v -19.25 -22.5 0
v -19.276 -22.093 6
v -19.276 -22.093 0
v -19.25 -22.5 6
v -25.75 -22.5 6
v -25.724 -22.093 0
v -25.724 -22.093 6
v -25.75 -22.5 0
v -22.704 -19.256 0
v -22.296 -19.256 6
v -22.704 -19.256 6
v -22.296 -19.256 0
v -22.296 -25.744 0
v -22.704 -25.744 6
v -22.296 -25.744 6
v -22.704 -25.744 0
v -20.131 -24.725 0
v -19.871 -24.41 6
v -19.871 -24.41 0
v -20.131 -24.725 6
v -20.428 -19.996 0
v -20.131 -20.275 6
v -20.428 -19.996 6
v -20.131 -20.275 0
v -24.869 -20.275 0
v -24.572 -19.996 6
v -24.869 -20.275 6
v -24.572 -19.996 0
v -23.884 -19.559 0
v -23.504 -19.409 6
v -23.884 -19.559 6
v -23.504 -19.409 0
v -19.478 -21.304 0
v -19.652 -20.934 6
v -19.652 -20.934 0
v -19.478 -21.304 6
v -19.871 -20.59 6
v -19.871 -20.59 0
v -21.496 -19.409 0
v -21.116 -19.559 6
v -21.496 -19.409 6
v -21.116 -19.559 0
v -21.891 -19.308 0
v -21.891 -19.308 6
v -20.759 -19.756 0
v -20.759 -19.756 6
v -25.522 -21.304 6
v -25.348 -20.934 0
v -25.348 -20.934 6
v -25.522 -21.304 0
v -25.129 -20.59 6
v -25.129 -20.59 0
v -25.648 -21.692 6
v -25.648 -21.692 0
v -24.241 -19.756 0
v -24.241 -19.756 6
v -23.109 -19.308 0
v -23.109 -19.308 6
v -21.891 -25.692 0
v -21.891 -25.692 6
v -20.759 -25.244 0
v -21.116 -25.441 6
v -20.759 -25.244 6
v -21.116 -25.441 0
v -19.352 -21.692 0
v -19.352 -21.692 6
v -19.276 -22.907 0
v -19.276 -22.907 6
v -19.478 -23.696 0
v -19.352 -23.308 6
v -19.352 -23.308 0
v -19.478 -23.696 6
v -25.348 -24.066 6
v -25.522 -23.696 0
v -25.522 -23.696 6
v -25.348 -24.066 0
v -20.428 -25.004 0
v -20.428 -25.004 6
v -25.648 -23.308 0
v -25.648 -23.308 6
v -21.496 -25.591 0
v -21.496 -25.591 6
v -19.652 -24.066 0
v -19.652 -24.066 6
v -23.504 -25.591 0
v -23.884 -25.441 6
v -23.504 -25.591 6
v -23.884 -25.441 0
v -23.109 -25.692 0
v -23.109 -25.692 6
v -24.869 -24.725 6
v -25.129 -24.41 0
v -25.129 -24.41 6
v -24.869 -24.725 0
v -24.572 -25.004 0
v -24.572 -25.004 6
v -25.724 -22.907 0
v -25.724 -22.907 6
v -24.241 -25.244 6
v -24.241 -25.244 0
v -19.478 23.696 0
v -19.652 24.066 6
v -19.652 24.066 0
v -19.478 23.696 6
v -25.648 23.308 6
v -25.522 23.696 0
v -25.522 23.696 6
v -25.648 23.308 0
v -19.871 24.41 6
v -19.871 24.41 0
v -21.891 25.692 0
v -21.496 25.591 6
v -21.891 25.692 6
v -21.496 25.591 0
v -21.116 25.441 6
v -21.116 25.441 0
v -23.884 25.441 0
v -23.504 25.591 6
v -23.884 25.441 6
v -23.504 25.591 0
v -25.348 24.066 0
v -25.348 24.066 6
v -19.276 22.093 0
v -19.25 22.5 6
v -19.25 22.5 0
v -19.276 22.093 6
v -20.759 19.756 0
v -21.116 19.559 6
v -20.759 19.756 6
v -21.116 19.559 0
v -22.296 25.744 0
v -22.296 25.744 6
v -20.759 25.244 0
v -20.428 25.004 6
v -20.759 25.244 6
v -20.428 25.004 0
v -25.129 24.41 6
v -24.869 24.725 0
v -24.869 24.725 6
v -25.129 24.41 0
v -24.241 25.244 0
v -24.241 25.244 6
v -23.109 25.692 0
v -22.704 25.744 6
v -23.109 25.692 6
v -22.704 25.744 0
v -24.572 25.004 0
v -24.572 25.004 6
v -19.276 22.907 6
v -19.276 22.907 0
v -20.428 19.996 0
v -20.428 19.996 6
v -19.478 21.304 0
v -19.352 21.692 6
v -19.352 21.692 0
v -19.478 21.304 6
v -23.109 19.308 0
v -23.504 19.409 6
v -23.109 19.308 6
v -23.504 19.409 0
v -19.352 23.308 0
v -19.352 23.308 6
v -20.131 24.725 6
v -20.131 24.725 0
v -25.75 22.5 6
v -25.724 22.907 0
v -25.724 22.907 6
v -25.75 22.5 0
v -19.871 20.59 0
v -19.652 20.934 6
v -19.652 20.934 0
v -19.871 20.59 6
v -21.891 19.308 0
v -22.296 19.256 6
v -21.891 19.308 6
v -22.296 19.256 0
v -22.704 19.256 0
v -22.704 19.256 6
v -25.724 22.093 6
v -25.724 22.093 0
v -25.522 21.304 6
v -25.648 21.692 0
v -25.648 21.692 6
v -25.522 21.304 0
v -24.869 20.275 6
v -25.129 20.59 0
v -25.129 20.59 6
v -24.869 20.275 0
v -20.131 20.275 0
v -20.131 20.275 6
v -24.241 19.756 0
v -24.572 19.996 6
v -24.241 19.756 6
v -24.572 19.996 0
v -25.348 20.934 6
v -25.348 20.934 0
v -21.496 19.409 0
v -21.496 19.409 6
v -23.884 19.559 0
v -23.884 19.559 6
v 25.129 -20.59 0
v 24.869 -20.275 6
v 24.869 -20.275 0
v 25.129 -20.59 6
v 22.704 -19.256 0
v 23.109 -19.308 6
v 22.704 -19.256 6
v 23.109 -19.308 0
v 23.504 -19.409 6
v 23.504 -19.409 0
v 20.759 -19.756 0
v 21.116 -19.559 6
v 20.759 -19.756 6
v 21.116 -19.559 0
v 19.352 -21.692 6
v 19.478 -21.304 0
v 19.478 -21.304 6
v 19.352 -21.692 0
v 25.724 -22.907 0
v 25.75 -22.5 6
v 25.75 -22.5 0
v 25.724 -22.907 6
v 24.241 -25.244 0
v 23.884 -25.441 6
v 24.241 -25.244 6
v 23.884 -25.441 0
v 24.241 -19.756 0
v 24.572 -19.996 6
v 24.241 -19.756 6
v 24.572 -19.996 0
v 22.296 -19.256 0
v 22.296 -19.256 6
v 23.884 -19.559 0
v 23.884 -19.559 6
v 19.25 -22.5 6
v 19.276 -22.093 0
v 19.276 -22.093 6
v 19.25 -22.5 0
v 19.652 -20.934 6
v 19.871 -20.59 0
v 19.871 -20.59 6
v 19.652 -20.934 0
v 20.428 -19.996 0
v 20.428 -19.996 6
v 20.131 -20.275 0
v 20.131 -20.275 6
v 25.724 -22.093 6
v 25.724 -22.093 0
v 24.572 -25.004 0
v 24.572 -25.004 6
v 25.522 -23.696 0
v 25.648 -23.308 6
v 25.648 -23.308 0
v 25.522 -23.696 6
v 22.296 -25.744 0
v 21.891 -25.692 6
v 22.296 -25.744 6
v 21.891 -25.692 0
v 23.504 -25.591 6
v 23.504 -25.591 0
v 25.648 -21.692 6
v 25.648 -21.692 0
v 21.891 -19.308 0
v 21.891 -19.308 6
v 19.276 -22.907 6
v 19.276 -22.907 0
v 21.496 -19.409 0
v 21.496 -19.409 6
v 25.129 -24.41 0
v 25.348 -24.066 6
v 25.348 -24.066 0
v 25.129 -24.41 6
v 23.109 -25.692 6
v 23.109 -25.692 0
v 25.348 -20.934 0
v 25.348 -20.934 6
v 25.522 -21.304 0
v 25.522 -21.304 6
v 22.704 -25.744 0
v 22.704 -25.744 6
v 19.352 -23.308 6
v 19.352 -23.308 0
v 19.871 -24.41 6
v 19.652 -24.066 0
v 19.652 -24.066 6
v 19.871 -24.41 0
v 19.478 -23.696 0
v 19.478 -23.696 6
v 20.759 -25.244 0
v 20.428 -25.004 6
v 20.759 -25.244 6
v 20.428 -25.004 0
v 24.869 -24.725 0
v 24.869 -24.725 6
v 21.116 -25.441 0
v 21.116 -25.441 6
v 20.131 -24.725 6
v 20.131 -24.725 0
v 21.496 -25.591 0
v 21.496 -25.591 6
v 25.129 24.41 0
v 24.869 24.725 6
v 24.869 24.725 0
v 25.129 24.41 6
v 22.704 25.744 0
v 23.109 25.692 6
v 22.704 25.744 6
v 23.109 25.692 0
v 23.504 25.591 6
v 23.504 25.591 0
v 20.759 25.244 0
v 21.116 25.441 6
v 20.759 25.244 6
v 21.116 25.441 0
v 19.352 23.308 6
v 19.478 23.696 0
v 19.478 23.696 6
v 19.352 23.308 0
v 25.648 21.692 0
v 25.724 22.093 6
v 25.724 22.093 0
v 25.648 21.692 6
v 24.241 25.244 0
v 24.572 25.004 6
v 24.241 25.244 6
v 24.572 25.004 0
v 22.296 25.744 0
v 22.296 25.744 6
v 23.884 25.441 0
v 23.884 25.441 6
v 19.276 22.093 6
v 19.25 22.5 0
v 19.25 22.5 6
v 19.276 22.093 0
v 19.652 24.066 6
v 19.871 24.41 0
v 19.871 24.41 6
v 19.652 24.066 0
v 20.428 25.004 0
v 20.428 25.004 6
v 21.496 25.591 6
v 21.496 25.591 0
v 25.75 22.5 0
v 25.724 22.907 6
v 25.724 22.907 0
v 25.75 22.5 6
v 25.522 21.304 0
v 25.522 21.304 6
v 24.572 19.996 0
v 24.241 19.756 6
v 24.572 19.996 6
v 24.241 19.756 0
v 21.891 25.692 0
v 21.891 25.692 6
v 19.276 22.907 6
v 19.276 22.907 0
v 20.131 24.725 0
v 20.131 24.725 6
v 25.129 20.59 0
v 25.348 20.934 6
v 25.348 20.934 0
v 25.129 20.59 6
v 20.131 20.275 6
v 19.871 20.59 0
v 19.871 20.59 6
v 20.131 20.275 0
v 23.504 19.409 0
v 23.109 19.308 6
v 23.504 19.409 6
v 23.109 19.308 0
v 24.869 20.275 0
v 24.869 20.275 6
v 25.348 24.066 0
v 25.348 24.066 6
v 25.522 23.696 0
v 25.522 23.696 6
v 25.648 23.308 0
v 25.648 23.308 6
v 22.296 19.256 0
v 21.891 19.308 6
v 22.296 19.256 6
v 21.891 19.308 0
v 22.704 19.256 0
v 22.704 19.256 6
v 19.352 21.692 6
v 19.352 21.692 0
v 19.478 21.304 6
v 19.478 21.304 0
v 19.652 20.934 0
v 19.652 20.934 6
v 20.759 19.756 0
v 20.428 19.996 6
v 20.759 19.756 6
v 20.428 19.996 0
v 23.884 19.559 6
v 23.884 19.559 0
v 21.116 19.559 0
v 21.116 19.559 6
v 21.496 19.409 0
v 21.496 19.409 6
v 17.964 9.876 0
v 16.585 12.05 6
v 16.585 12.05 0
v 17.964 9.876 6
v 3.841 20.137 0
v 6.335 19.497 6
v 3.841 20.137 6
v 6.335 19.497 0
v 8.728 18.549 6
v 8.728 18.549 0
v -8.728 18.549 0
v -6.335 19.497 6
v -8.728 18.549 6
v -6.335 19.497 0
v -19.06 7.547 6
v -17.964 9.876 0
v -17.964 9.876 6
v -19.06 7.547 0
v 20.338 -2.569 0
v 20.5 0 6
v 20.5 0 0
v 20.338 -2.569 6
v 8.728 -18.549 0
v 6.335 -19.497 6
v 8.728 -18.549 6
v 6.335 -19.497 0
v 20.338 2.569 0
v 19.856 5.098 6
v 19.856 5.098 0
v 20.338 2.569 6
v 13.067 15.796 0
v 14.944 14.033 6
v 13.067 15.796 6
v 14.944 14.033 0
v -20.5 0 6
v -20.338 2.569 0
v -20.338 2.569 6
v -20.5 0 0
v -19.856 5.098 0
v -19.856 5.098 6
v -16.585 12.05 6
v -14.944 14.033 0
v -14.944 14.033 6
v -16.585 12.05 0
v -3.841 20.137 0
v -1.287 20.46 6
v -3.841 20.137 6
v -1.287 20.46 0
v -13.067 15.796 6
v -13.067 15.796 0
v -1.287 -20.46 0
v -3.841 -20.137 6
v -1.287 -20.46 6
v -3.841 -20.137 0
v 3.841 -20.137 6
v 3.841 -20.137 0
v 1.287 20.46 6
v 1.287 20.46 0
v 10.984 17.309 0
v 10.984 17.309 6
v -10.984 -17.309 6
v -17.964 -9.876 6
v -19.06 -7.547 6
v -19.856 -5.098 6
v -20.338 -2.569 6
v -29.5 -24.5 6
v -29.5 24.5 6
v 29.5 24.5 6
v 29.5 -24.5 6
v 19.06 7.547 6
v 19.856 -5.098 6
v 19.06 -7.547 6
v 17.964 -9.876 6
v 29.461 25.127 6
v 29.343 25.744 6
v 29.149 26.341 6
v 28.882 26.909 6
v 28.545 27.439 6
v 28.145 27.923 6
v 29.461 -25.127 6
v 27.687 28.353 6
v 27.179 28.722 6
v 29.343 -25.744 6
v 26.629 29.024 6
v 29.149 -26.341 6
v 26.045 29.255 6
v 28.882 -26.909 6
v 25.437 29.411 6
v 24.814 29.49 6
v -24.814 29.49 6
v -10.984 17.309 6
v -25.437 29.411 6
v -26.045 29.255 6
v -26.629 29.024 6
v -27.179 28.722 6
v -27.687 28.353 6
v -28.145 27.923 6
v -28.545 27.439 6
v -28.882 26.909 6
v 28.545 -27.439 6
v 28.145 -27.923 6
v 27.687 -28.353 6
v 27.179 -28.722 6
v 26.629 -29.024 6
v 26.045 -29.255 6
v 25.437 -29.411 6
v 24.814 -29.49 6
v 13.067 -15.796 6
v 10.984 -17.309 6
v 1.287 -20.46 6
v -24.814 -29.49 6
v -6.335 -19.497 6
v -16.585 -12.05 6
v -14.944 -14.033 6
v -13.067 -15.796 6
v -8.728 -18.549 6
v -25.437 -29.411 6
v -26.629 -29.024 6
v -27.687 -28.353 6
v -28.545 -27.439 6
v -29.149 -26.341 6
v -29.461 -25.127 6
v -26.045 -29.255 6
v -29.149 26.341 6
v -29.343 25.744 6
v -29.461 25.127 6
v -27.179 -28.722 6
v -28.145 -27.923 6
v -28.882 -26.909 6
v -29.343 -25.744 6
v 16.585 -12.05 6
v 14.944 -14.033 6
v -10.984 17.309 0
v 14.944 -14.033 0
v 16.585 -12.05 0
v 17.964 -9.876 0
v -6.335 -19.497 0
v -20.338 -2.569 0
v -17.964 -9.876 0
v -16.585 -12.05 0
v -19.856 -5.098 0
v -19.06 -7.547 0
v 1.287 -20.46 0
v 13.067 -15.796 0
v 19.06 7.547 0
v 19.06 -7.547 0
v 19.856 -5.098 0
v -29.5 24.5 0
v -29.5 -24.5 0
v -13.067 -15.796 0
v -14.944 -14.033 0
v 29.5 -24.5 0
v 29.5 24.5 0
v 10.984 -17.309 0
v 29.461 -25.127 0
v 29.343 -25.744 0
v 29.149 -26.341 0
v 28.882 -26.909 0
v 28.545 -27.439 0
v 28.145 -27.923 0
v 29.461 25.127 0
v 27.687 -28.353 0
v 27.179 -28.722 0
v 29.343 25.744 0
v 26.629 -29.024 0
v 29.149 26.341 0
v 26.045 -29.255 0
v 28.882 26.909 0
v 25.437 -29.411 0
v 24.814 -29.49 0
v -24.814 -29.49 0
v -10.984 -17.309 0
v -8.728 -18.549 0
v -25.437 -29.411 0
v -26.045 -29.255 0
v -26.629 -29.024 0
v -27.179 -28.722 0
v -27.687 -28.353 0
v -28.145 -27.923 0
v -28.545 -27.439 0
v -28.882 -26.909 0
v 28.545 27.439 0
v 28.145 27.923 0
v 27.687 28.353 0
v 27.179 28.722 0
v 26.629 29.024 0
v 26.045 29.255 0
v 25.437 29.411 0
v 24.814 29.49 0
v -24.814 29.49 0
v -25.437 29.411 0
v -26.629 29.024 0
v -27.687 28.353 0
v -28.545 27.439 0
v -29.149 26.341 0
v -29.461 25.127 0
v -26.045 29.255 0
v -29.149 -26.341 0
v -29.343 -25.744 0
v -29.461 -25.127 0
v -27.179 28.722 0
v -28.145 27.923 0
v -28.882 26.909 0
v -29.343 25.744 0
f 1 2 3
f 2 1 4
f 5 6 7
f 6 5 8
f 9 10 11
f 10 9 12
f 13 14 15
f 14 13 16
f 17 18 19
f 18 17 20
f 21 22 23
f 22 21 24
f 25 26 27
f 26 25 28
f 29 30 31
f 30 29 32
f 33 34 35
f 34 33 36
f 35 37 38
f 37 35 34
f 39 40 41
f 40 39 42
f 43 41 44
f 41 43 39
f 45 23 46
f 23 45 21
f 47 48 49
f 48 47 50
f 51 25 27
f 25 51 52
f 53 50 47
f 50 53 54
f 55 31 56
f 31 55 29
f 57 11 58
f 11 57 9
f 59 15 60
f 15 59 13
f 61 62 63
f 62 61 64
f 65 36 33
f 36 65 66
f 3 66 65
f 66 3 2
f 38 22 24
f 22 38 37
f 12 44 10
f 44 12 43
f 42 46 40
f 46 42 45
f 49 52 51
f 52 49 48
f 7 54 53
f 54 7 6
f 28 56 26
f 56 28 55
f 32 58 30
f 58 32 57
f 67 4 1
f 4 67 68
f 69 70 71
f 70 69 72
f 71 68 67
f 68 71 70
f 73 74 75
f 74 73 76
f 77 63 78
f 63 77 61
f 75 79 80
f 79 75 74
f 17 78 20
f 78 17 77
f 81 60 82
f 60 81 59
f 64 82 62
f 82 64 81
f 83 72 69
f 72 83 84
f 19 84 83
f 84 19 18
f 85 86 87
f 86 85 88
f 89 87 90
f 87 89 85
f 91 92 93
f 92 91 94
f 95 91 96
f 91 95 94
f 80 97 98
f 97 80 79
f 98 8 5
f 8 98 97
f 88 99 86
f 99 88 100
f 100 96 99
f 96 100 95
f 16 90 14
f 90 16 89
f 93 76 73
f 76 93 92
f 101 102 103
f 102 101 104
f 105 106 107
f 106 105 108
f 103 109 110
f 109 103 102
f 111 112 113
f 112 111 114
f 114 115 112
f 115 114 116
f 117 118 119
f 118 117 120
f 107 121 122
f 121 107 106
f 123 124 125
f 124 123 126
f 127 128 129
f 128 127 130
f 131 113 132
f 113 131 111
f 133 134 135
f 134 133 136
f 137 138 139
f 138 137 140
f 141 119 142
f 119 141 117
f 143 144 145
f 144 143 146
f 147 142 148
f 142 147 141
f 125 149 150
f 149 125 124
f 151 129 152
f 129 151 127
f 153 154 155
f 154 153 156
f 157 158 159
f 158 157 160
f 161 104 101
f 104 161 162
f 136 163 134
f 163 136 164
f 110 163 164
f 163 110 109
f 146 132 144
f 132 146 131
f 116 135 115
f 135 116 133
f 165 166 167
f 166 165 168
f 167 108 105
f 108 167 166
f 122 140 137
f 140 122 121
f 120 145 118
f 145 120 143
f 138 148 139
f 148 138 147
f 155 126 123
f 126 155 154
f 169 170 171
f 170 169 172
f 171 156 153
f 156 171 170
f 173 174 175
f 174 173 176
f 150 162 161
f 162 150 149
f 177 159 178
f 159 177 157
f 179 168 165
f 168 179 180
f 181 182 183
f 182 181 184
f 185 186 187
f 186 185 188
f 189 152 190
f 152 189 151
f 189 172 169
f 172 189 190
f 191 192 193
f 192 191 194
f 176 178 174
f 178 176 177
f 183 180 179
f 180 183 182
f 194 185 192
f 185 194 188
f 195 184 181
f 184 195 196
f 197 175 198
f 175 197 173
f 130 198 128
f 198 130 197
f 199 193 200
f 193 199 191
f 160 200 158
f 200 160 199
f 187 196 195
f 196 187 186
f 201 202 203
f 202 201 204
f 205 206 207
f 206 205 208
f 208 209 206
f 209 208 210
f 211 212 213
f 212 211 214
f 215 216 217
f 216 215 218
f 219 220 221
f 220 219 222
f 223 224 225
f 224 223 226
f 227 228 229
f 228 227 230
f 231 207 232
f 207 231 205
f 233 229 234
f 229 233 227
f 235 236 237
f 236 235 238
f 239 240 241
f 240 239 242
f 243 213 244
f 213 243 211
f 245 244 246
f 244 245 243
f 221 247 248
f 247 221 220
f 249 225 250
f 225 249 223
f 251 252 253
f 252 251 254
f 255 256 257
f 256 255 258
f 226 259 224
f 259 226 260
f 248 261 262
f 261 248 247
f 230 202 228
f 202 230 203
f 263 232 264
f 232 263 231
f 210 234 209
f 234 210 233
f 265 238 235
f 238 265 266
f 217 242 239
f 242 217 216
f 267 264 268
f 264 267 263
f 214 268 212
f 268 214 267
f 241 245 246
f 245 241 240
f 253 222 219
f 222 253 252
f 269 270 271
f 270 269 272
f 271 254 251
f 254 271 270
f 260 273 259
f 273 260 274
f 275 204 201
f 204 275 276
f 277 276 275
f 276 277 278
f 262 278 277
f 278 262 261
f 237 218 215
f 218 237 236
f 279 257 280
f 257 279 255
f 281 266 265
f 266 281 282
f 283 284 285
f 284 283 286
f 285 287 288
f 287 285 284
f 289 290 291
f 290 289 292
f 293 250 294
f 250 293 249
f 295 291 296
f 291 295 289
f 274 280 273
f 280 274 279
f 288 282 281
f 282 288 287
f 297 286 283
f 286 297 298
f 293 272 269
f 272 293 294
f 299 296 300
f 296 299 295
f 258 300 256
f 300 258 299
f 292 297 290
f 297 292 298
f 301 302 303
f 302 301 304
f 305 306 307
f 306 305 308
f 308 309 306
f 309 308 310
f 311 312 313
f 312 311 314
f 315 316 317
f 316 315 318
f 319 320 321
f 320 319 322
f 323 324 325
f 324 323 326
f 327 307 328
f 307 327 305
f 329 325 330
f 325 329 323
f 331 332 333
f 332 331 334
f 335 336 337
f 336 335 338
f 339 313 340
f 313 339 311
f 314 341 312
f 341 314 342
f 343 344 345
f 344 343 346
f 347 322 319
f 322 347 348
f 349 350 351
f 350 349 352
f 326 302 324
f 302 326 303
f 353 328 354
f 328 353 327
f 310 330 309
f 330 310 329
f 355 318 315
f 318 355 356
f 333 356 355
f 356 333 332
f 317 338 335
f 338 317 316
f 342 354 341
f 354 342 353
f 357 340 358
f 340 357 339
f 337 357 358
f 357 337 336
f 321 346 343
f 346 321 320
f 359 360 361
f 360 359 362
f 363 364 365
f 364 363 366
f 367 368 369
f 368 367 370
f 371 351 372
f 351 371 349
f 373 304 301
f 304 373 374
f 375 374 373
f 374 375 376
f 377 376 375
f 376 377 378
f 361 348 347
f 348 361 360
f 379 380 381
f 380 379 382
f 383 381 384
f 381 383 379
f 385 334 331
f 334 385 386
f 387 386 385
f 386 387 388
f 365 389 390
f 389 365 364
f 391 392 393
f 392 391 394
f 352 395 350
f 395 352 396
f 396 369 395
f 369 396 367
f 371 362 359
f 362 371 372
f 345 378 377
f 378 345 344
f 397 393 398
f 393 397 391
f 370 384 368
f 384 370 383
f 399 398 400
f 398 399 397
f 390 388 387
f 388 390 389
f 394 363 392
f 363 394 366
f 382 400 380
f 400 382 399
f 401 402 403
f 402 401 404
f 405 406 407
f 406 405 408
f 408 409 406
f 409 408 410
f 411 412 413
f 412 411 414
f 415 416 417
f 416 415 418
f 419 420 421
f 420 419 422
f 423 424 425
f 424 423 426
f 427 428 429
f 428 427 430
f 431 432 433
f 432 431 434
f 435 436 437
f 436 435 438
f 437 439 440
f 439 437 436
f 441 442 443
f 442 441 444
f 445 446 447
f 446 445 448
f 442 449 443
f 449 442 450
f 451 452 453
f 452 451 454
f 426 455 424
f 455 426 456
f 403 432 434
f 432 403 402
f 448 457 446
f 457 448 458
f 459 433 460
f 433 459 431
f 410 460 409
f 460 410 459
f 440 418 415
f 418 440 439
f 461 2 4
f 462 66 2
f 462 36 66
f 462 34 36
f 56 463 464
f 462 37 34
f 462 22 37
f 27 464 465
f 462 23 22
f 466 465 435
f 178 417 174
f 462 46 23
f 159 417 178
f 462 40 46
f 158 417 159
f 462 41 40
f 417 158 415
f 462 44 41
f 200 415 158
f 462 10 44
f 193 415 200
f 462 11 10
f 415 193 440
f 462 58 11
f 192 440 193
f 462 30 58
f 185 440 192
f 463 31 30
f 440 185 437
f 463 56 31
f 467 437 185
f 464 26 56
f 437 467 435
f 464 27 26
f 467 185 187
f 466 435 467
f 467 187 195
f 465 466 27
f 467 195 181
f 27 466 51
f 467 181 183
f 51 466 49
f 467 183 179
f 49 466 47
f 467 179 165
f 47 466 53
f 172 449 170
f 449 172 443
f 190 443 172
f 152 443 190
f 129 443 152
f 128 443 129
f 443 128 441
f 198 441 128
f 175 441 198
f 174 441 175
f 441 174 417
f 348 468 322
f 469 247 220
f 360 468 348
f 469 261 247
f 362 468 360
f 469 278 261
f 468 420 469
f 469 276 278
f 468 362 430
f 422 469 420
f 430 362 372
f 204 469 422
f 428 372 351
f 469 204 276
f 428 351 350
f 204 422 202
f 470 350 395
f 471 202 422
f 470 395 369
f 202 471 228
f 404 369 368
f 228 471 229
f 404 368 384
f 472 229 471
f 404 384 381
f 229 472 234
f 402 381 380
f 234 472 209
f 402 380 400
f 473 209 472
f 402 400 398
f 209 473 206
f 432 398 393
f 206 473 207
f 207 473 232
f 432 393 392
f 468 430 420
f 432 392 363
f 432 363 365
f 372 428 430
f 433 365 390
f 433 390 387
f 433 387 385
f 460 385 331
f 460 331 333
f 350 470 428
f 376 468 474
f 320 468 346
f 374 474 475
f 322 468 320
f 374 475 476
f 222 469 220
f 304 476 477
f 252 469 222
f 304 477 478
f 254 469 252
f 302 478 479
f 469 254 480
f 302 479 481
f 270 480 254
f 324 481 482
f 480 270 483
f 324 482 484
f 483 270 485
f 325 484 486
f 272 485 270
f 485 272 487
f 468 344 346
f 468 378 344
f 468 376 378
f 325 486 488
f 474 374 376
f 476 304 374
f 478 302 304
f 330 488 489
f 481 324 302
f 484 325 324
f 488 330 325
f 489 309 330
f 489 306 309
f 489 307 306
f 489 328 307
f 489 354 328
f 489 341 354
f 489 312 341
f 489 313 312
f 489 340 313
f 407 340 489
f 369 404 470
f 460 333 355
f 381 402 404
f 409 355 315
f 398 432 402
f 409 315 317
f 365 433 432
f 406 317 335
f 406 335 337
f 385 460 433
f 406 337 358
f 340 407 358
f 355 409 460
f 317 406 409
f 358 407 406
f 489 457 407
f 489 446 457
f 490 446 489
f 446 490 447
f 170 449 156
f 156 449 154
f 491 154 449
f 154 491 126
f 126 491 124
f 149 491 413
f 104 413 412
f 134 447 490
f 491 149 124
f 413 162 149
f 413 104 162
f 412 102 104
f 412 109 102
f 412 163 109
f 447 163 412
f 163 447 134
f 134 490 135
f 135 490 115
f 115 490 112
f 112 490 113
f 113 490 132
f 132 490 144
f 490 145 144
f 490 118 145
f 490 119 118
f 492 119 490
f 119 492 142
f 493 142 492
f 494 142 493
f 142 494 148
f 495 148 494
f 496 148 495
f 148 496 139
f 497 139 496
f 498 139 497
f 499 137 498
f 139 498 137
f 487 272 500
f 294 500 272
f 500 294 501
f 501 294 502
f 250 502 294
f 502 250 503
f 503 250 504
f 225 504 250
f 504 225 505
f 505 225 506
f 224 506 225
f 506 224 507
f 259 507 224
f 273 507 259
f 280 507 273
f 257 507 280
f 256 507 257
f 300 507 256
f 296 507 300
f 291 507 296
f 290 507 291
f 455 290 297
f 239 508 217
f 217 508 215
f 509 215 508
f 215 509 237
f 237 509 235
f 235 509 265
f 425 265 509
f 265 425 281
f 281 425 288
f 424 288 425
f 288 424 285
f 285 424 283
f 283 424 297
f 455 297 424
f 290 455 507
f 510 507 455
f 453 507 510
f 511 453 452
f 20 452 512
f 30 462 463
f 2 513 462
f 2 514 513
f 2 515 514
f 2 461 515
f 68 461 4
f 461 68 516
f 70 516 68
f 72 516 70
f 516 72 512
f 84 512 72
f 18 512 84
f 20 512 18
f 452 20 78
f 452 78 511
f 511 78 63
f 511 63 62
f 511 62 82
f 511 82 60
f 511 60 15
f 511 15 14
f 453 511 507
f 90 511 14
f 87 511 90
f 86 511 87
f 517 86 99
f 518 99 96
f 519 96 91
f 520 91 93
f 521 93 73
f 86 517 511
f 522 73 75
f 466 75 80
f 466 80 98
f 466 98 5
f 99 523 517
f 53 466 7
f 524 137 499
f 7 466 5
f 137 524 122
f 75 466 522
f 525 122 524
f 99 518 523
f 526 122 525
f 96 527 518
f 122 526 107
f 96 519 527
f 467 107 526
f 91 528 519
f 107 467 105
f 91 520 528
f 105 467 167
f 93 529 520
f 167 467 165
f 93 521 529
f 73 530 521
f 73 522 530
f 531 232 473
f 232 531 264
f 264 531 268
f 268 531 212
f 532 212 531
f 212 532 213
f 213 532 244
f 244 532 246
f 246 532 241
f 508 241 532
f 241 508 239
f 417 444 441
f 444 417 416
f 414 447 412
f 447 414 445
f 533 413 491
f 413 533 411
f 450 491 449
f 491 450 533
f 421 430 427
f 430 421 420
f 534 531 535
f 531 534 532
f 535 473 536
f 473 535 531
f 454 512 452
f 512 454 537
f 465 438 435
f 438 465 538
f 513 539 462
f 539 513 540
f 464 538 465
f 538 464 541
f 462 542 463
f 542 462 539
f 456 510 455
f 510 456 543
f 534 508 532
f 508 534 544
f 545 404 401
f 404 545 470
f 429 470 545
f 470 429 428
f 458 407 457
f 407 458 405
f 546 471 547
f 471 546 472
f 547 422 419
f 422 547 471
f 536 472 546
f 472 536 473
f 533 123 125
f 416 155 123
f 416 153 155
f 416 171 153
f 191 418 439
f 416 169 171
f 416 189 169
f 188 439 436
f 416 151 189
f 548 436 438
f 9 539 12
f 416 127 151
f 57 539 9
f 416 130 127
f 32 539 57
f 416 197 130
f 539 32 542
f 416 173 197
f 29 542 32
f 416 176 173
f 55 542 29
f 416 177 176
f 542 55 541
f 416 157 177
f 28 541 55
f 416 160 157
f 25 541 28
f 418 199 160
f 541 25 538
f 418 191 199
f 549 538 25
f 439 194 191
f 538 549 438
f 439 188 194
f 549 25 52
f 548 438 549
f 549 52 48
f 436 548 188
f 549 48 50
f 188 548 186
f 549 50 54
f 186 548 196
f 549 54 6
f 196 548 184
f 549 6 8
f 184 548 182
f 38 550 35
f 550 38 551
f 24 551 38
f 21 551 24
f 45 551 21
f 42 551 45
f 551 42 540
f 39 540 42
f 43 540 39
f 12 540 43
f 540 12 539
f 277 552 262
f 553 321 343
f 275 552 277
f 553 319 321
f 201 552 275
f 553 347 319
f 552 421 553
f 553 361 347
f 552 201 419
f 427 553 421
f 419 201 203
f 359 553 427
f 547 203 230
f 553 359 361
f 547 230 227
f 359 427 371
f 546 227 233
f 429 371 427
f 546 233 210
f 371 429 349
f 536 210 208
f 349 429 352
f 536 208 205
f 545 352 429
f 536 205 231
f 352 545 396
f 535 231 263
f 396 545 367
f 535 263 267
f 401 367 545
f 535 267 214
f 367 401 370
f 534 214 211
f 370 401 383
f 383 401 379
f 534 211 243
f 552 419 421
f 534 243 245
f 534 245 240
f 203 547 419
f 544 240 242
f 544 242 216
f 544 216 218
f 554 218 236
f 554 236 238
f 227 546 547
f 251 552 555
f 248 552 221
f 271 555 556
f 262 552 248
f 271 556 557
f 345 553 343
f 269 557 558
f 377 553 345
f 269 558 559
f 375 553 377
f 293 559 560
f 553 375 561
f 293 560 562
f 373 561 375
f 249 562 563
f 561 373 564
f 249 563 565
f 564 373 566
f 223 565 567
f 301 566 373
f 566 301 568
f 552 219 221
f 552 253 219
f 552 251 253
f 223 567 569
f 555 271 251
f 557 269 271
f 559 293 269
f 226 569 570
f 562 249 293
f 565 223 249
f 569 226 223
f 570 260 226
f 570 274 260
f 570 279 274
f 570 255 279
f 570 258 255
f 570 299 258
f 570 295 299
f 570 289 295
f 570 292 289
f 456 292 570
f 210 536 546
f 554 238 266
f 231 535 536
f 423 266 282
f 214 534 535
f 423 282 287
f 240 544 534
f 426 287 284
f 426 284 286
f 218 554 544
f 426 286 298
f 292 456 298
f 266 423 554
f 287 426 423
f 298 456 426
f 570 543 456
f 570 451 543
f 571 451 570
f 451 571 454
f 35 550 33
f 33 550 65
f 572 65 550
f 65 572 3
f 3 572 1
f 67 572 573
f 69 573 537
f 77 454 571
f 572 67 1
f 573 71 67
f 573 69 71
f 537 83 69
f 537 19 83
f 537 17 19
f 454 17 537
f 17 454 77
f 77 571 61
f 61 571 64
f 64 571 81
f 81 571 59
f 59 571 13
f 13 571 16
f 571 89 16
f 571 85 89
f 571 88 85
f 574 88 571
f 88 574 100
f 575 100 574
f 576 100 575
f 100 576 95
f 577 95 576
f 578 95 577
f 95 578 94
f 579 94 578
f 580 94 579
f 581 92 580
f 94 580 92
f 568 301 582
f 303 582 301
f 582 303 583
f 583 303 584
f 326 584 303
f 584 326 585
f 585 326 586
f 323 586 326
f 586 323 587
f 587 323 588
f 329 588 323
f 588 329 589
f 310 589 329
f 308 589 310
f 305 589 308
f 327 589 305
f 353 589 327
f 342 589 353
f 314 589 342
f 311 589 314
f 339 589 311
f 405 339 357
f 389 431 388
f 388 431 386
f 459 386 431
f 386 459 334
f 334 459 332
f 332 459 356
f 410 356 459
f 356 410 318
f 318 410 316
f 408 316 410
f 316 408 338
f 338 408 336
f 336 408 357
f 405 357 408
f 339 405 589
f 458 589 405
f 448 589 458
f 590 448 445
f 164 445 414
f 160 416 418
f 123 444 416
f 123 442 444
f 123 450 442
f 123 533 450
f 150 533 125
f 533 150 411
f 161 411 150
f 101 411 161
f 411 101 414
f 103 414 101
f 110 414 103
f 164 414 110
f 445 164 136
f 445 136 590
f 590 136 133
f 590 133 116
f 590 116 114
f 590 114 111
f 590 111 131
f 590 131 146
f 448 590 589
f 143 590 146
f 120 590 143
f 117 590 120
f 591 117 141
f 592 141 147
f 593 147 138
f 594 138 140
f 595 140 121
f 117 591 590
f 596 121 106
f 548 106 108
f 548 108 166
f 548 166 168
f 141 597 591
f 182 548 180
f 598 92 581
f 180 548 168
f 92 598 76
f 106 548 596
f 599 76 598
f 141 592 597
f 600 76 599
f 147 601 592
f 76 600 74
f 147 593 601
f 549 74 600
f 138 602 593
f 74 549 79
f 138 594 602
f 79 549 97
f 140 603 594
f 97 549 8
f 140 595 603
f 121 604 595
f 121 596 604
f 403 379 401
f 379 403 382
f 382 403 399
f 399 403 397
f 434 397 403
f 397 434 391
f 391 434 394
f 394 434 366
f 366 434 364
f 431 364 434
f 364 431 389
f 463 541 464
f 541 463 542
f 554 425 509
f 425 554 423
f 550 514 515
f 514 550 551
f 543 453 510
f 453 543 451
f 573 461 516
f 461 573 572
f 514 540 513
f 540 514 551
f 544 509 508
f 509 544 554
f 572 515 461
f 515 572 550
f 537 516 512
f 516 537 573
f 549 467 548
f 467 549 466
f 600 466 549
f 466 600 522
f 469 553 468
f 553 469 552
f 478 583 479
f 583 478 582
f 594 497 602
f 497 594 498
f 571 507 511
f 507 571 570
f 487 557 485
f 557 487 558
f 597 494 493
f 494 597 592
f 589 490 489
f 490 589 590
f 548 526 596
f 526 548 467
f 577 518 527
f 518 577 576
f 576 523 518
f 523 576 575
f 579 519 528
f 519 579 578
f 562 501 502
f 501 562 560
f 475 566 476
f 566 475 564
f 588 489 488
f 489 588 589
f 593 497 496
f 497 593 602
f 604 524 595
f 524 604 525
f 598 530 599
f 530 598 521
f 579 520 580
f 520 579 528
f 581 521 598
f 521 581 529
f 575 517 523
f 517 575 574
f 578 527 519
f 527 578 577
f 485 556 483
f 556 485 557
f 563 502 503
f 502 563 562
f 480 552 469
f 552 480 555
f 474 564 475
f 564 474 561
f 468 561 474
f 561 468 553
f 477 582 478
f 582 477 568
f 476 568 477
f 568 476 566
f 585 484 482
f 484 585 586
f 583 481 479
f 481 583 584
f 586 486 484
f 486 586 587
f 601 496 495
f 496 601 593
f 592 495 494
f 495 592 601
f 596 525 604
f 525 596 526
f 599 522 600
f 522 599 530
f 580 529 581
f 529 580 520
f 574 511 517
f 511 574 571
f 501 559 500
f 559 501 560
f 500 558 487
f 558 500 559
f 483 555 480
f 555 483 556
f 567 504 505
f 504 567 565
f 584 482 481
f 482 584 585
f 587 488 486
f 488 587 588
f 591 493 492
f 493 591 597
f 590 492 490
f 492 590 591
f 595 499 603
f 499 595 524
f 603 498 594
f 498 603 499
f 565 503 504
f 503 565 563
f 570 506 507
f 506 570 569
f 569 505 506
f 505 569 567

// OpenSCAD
$fn = 50;


difference() {
	union() {
		hull() {
			translate(v = [-24.5000000000, 24.5000000000, 0]) {
				cylinder(h = 6, r = 5);
			}
			translate(v = [24.5000000000, 24.5000000000, 0]) {
				cylinder(h = 6, r = 5);
			}
			translate(v = [-24.5000000000, -24.5000000000, 0]) {
				cylinder(h = 6, r = 5);
			}
			translate(v = [24.5000000000, -24.5000000000, 0]) {
				cylinder(h = 6, r = 5);
			}
		}
	}
	union() {
		#translate(v = [-22.5000000000, -22.5000000000, -100.0000000000]) {
			cylinder(h = 200, r = 3.2500000000);
		}
		#translate(v = [-22.5000000000, 22.5000000000, -100.0000000000]) {
			cylinder(h = 200, r = 3.2500000000);
		}
		#translate(v = [22.5000000000, -22.5000000000, -100.0000000000]) {
			cylinder(h = 200, r = 3.2500000000);
		}
		#translate(v = [22.5000000000, 22.5000000000, -100.0000000000]) {
			cylinder(h = 200, r = 3.2500000000);
		}
		#cylinder(h = 6, r = 20.5000000000);
	}
}
